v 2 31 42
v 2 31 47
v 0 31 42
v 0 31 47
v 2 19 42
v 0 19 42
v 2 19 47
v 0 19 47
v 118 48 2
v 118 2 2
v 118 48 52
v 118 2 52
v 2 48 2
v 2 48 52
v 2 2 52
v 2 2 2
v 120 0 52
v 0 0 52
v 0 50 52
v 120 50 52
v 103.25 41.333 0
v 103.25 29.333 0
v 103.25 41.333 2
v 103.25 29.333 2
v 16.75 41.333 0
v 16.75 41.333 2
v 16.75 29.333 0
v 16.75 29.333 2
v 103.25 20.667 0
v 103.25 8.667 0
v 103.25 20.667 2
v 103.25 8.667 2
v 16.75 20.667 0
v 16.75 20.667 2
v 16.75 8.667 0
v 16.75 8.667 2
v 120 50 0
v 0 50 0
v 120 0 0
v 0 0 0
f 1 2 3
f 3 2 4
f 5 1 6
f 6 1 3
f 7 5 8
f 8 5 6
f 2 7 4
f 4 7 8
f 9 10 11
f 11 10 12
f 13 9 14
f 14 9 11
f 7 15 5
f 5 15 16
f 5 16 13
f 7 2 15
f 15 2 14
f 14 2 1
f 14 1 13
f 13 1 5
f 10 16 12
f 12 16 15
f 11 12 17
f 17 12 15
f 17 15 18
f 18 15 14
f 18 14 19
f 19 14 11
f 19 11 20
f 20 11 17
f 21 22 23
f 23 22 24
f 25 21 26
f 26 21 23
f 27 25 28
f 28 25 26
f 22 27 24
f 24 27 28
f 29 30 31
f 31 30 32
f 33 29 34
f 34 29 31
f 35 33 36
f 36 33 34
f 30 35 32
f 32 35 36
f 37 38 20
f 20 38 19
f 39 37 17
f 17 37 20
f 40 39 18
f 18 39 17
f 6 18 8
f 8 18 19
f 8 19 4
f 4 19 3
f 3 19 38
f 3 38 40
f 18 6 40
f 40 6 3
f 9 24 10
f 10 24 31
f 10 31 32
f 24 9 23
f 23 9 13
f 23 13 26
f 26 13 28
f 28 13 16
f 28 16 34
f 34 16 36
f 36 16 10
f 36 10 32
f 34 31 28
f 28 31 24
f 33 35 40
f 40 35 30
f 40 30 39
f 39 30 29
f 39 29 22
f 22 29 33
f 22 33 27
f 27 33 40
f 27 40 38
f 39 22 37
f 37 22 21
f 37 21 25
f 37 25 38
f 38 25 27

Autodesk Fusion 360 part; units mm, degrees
sketch "Sketch1" plane through (0, 0, 0) normal (0, 0, 1) x (1, 0, 0)
  line L0 (0, 0) -> (120, 0)
  line L1 (120, 0) -> (120, 50)
  line L2 (120, 50) -> (0, 50)
  line L3 (0, 50) -> (0, 0)
  line L4 (16.75, 41.3333) -> (103.25, 41.3333)
  line L5 (103.25, 41.3333) -> (103.25, 29.3333)
  line L6 (103.25, 29.3333) -> (16.75, 29.3333)
  line L7 (16.75, 29.3333) -> (16.75, 41.3333)
  line L8 (16.75, 20.6667) -> (103.25, 20.6667)
  line L9 (103.25, 20.6667) -> (103.25, 8.6667)
  line L10 (103.25, 8.6667) -> (16.75, 8.6667)
  line L11 (16.75, 8.6667) -> (16.75, 20.6667)
  line L12 (103.25, 35.3656) -> (120, 35.3656) construction
  line L13 (0, 36) -> (16.75, 36) construction
  line L14 (16.75, 14.6667) -> (0, 14.6667) construction
  line L15 (103.25, 14.6667) -> (120, 14.6667) construction
  line L16 (54.6731, 50) -> (54.6731, 41.3333) construction
  line L17 (54.6731, 29.3333) -> (54.6731, 20.6667) construction
  line L18 (56.6135, 8.6667) -> (56.6135, 0) construction
  dimension "d1" = 120
  dimension "d2" = 50
  dimension "d3" = 86.5
  dimension "d4" = 12
  dimension "d6" = 86.5
  dimension "d7" = 12
extrude "Extrude1" add sketch "Sketch1" along normal blind 2
sketch "Sketch2" plane through (0, 0, 2) normal (0, 0, 1) x (-1, 0, 0)
  line L0 (-103.25, -8.6667) -> (-16.75, -8.6667)
  line L1 (-16.75, -8.6667) -> (-16.75, -20.6667)
  line L2 (-16.75, -20.6667) -> (-103.25, -20.6667)
  line L3 (-103.25, -20.6667) -> (-103.25, -8.6667)
  line L4 (-103.25, -29.3333) -> (-16.75, -29.3333)
  line L5 (-16.75, -29.3333) -> (-16.75, -41.3333)
  line L6 (-16.75, -41.3333) -> (-103.25, -41.3333)
  line L7 (-103.25, -41.3333) -> (-103.25, -29.3333)
  line L8 (0, -50) -> (0, 0)
  line L9 (0, 0) -> (-120, 0)
  line L10 (-120, 0) -> (-120, -50)
  line L11 (-120, -50) -> (0, -50)
  line L12 (-2, -48) -> (-118, -48)
  line L13 (-118, -48) -> (-118, -2)
  line L14 (-118, -2) -> (-2, -2)
  line L15 (-2, -2) -> (-2, -48)
  dimension "d10" = 2
  dimension "d11" = 2
  dimension "d12" = 2
  dimension "d13" = 2
extrude "Extrude2" add sketch "Sketch2" along normal blind 50 contours L8 L9 L10 L11
sketch "Sketch3" plane through (0, 0, 0) normal (-1, 0, 0) x (0, -1, 0)
  line L0 (-50, 0) -> (0, 0)
  line L1 (0, 0) -> (0, 52)
  line L2 (0, 52) -> (-50, 52)
  line L3 (-50, 52) -> (-50, 0)
  line L4 (-31, 47) -> (-19, 47)
  line L5 (-19, 47) -> (-19, 42)
  line L6 (-19, 42) -> (-31, 42)
  line L7 (-31, 42) -> (-31, 47)
  line L8 (-31, 44.5) -> (-50, 44.5) construction
  line L9 (-40.8681, 44.5) -> (-40.5, 44.5) construction
  line L10 (-19, 44.5) -> (0, 44.5) construction
  dimension "d16" = 12
  dimension "d17" = 5
  dimension "d18" = 5
extrude "Extrude3" cut sketch "Sketch3" against normal blind 10 contours L4 L5 L6 L7
